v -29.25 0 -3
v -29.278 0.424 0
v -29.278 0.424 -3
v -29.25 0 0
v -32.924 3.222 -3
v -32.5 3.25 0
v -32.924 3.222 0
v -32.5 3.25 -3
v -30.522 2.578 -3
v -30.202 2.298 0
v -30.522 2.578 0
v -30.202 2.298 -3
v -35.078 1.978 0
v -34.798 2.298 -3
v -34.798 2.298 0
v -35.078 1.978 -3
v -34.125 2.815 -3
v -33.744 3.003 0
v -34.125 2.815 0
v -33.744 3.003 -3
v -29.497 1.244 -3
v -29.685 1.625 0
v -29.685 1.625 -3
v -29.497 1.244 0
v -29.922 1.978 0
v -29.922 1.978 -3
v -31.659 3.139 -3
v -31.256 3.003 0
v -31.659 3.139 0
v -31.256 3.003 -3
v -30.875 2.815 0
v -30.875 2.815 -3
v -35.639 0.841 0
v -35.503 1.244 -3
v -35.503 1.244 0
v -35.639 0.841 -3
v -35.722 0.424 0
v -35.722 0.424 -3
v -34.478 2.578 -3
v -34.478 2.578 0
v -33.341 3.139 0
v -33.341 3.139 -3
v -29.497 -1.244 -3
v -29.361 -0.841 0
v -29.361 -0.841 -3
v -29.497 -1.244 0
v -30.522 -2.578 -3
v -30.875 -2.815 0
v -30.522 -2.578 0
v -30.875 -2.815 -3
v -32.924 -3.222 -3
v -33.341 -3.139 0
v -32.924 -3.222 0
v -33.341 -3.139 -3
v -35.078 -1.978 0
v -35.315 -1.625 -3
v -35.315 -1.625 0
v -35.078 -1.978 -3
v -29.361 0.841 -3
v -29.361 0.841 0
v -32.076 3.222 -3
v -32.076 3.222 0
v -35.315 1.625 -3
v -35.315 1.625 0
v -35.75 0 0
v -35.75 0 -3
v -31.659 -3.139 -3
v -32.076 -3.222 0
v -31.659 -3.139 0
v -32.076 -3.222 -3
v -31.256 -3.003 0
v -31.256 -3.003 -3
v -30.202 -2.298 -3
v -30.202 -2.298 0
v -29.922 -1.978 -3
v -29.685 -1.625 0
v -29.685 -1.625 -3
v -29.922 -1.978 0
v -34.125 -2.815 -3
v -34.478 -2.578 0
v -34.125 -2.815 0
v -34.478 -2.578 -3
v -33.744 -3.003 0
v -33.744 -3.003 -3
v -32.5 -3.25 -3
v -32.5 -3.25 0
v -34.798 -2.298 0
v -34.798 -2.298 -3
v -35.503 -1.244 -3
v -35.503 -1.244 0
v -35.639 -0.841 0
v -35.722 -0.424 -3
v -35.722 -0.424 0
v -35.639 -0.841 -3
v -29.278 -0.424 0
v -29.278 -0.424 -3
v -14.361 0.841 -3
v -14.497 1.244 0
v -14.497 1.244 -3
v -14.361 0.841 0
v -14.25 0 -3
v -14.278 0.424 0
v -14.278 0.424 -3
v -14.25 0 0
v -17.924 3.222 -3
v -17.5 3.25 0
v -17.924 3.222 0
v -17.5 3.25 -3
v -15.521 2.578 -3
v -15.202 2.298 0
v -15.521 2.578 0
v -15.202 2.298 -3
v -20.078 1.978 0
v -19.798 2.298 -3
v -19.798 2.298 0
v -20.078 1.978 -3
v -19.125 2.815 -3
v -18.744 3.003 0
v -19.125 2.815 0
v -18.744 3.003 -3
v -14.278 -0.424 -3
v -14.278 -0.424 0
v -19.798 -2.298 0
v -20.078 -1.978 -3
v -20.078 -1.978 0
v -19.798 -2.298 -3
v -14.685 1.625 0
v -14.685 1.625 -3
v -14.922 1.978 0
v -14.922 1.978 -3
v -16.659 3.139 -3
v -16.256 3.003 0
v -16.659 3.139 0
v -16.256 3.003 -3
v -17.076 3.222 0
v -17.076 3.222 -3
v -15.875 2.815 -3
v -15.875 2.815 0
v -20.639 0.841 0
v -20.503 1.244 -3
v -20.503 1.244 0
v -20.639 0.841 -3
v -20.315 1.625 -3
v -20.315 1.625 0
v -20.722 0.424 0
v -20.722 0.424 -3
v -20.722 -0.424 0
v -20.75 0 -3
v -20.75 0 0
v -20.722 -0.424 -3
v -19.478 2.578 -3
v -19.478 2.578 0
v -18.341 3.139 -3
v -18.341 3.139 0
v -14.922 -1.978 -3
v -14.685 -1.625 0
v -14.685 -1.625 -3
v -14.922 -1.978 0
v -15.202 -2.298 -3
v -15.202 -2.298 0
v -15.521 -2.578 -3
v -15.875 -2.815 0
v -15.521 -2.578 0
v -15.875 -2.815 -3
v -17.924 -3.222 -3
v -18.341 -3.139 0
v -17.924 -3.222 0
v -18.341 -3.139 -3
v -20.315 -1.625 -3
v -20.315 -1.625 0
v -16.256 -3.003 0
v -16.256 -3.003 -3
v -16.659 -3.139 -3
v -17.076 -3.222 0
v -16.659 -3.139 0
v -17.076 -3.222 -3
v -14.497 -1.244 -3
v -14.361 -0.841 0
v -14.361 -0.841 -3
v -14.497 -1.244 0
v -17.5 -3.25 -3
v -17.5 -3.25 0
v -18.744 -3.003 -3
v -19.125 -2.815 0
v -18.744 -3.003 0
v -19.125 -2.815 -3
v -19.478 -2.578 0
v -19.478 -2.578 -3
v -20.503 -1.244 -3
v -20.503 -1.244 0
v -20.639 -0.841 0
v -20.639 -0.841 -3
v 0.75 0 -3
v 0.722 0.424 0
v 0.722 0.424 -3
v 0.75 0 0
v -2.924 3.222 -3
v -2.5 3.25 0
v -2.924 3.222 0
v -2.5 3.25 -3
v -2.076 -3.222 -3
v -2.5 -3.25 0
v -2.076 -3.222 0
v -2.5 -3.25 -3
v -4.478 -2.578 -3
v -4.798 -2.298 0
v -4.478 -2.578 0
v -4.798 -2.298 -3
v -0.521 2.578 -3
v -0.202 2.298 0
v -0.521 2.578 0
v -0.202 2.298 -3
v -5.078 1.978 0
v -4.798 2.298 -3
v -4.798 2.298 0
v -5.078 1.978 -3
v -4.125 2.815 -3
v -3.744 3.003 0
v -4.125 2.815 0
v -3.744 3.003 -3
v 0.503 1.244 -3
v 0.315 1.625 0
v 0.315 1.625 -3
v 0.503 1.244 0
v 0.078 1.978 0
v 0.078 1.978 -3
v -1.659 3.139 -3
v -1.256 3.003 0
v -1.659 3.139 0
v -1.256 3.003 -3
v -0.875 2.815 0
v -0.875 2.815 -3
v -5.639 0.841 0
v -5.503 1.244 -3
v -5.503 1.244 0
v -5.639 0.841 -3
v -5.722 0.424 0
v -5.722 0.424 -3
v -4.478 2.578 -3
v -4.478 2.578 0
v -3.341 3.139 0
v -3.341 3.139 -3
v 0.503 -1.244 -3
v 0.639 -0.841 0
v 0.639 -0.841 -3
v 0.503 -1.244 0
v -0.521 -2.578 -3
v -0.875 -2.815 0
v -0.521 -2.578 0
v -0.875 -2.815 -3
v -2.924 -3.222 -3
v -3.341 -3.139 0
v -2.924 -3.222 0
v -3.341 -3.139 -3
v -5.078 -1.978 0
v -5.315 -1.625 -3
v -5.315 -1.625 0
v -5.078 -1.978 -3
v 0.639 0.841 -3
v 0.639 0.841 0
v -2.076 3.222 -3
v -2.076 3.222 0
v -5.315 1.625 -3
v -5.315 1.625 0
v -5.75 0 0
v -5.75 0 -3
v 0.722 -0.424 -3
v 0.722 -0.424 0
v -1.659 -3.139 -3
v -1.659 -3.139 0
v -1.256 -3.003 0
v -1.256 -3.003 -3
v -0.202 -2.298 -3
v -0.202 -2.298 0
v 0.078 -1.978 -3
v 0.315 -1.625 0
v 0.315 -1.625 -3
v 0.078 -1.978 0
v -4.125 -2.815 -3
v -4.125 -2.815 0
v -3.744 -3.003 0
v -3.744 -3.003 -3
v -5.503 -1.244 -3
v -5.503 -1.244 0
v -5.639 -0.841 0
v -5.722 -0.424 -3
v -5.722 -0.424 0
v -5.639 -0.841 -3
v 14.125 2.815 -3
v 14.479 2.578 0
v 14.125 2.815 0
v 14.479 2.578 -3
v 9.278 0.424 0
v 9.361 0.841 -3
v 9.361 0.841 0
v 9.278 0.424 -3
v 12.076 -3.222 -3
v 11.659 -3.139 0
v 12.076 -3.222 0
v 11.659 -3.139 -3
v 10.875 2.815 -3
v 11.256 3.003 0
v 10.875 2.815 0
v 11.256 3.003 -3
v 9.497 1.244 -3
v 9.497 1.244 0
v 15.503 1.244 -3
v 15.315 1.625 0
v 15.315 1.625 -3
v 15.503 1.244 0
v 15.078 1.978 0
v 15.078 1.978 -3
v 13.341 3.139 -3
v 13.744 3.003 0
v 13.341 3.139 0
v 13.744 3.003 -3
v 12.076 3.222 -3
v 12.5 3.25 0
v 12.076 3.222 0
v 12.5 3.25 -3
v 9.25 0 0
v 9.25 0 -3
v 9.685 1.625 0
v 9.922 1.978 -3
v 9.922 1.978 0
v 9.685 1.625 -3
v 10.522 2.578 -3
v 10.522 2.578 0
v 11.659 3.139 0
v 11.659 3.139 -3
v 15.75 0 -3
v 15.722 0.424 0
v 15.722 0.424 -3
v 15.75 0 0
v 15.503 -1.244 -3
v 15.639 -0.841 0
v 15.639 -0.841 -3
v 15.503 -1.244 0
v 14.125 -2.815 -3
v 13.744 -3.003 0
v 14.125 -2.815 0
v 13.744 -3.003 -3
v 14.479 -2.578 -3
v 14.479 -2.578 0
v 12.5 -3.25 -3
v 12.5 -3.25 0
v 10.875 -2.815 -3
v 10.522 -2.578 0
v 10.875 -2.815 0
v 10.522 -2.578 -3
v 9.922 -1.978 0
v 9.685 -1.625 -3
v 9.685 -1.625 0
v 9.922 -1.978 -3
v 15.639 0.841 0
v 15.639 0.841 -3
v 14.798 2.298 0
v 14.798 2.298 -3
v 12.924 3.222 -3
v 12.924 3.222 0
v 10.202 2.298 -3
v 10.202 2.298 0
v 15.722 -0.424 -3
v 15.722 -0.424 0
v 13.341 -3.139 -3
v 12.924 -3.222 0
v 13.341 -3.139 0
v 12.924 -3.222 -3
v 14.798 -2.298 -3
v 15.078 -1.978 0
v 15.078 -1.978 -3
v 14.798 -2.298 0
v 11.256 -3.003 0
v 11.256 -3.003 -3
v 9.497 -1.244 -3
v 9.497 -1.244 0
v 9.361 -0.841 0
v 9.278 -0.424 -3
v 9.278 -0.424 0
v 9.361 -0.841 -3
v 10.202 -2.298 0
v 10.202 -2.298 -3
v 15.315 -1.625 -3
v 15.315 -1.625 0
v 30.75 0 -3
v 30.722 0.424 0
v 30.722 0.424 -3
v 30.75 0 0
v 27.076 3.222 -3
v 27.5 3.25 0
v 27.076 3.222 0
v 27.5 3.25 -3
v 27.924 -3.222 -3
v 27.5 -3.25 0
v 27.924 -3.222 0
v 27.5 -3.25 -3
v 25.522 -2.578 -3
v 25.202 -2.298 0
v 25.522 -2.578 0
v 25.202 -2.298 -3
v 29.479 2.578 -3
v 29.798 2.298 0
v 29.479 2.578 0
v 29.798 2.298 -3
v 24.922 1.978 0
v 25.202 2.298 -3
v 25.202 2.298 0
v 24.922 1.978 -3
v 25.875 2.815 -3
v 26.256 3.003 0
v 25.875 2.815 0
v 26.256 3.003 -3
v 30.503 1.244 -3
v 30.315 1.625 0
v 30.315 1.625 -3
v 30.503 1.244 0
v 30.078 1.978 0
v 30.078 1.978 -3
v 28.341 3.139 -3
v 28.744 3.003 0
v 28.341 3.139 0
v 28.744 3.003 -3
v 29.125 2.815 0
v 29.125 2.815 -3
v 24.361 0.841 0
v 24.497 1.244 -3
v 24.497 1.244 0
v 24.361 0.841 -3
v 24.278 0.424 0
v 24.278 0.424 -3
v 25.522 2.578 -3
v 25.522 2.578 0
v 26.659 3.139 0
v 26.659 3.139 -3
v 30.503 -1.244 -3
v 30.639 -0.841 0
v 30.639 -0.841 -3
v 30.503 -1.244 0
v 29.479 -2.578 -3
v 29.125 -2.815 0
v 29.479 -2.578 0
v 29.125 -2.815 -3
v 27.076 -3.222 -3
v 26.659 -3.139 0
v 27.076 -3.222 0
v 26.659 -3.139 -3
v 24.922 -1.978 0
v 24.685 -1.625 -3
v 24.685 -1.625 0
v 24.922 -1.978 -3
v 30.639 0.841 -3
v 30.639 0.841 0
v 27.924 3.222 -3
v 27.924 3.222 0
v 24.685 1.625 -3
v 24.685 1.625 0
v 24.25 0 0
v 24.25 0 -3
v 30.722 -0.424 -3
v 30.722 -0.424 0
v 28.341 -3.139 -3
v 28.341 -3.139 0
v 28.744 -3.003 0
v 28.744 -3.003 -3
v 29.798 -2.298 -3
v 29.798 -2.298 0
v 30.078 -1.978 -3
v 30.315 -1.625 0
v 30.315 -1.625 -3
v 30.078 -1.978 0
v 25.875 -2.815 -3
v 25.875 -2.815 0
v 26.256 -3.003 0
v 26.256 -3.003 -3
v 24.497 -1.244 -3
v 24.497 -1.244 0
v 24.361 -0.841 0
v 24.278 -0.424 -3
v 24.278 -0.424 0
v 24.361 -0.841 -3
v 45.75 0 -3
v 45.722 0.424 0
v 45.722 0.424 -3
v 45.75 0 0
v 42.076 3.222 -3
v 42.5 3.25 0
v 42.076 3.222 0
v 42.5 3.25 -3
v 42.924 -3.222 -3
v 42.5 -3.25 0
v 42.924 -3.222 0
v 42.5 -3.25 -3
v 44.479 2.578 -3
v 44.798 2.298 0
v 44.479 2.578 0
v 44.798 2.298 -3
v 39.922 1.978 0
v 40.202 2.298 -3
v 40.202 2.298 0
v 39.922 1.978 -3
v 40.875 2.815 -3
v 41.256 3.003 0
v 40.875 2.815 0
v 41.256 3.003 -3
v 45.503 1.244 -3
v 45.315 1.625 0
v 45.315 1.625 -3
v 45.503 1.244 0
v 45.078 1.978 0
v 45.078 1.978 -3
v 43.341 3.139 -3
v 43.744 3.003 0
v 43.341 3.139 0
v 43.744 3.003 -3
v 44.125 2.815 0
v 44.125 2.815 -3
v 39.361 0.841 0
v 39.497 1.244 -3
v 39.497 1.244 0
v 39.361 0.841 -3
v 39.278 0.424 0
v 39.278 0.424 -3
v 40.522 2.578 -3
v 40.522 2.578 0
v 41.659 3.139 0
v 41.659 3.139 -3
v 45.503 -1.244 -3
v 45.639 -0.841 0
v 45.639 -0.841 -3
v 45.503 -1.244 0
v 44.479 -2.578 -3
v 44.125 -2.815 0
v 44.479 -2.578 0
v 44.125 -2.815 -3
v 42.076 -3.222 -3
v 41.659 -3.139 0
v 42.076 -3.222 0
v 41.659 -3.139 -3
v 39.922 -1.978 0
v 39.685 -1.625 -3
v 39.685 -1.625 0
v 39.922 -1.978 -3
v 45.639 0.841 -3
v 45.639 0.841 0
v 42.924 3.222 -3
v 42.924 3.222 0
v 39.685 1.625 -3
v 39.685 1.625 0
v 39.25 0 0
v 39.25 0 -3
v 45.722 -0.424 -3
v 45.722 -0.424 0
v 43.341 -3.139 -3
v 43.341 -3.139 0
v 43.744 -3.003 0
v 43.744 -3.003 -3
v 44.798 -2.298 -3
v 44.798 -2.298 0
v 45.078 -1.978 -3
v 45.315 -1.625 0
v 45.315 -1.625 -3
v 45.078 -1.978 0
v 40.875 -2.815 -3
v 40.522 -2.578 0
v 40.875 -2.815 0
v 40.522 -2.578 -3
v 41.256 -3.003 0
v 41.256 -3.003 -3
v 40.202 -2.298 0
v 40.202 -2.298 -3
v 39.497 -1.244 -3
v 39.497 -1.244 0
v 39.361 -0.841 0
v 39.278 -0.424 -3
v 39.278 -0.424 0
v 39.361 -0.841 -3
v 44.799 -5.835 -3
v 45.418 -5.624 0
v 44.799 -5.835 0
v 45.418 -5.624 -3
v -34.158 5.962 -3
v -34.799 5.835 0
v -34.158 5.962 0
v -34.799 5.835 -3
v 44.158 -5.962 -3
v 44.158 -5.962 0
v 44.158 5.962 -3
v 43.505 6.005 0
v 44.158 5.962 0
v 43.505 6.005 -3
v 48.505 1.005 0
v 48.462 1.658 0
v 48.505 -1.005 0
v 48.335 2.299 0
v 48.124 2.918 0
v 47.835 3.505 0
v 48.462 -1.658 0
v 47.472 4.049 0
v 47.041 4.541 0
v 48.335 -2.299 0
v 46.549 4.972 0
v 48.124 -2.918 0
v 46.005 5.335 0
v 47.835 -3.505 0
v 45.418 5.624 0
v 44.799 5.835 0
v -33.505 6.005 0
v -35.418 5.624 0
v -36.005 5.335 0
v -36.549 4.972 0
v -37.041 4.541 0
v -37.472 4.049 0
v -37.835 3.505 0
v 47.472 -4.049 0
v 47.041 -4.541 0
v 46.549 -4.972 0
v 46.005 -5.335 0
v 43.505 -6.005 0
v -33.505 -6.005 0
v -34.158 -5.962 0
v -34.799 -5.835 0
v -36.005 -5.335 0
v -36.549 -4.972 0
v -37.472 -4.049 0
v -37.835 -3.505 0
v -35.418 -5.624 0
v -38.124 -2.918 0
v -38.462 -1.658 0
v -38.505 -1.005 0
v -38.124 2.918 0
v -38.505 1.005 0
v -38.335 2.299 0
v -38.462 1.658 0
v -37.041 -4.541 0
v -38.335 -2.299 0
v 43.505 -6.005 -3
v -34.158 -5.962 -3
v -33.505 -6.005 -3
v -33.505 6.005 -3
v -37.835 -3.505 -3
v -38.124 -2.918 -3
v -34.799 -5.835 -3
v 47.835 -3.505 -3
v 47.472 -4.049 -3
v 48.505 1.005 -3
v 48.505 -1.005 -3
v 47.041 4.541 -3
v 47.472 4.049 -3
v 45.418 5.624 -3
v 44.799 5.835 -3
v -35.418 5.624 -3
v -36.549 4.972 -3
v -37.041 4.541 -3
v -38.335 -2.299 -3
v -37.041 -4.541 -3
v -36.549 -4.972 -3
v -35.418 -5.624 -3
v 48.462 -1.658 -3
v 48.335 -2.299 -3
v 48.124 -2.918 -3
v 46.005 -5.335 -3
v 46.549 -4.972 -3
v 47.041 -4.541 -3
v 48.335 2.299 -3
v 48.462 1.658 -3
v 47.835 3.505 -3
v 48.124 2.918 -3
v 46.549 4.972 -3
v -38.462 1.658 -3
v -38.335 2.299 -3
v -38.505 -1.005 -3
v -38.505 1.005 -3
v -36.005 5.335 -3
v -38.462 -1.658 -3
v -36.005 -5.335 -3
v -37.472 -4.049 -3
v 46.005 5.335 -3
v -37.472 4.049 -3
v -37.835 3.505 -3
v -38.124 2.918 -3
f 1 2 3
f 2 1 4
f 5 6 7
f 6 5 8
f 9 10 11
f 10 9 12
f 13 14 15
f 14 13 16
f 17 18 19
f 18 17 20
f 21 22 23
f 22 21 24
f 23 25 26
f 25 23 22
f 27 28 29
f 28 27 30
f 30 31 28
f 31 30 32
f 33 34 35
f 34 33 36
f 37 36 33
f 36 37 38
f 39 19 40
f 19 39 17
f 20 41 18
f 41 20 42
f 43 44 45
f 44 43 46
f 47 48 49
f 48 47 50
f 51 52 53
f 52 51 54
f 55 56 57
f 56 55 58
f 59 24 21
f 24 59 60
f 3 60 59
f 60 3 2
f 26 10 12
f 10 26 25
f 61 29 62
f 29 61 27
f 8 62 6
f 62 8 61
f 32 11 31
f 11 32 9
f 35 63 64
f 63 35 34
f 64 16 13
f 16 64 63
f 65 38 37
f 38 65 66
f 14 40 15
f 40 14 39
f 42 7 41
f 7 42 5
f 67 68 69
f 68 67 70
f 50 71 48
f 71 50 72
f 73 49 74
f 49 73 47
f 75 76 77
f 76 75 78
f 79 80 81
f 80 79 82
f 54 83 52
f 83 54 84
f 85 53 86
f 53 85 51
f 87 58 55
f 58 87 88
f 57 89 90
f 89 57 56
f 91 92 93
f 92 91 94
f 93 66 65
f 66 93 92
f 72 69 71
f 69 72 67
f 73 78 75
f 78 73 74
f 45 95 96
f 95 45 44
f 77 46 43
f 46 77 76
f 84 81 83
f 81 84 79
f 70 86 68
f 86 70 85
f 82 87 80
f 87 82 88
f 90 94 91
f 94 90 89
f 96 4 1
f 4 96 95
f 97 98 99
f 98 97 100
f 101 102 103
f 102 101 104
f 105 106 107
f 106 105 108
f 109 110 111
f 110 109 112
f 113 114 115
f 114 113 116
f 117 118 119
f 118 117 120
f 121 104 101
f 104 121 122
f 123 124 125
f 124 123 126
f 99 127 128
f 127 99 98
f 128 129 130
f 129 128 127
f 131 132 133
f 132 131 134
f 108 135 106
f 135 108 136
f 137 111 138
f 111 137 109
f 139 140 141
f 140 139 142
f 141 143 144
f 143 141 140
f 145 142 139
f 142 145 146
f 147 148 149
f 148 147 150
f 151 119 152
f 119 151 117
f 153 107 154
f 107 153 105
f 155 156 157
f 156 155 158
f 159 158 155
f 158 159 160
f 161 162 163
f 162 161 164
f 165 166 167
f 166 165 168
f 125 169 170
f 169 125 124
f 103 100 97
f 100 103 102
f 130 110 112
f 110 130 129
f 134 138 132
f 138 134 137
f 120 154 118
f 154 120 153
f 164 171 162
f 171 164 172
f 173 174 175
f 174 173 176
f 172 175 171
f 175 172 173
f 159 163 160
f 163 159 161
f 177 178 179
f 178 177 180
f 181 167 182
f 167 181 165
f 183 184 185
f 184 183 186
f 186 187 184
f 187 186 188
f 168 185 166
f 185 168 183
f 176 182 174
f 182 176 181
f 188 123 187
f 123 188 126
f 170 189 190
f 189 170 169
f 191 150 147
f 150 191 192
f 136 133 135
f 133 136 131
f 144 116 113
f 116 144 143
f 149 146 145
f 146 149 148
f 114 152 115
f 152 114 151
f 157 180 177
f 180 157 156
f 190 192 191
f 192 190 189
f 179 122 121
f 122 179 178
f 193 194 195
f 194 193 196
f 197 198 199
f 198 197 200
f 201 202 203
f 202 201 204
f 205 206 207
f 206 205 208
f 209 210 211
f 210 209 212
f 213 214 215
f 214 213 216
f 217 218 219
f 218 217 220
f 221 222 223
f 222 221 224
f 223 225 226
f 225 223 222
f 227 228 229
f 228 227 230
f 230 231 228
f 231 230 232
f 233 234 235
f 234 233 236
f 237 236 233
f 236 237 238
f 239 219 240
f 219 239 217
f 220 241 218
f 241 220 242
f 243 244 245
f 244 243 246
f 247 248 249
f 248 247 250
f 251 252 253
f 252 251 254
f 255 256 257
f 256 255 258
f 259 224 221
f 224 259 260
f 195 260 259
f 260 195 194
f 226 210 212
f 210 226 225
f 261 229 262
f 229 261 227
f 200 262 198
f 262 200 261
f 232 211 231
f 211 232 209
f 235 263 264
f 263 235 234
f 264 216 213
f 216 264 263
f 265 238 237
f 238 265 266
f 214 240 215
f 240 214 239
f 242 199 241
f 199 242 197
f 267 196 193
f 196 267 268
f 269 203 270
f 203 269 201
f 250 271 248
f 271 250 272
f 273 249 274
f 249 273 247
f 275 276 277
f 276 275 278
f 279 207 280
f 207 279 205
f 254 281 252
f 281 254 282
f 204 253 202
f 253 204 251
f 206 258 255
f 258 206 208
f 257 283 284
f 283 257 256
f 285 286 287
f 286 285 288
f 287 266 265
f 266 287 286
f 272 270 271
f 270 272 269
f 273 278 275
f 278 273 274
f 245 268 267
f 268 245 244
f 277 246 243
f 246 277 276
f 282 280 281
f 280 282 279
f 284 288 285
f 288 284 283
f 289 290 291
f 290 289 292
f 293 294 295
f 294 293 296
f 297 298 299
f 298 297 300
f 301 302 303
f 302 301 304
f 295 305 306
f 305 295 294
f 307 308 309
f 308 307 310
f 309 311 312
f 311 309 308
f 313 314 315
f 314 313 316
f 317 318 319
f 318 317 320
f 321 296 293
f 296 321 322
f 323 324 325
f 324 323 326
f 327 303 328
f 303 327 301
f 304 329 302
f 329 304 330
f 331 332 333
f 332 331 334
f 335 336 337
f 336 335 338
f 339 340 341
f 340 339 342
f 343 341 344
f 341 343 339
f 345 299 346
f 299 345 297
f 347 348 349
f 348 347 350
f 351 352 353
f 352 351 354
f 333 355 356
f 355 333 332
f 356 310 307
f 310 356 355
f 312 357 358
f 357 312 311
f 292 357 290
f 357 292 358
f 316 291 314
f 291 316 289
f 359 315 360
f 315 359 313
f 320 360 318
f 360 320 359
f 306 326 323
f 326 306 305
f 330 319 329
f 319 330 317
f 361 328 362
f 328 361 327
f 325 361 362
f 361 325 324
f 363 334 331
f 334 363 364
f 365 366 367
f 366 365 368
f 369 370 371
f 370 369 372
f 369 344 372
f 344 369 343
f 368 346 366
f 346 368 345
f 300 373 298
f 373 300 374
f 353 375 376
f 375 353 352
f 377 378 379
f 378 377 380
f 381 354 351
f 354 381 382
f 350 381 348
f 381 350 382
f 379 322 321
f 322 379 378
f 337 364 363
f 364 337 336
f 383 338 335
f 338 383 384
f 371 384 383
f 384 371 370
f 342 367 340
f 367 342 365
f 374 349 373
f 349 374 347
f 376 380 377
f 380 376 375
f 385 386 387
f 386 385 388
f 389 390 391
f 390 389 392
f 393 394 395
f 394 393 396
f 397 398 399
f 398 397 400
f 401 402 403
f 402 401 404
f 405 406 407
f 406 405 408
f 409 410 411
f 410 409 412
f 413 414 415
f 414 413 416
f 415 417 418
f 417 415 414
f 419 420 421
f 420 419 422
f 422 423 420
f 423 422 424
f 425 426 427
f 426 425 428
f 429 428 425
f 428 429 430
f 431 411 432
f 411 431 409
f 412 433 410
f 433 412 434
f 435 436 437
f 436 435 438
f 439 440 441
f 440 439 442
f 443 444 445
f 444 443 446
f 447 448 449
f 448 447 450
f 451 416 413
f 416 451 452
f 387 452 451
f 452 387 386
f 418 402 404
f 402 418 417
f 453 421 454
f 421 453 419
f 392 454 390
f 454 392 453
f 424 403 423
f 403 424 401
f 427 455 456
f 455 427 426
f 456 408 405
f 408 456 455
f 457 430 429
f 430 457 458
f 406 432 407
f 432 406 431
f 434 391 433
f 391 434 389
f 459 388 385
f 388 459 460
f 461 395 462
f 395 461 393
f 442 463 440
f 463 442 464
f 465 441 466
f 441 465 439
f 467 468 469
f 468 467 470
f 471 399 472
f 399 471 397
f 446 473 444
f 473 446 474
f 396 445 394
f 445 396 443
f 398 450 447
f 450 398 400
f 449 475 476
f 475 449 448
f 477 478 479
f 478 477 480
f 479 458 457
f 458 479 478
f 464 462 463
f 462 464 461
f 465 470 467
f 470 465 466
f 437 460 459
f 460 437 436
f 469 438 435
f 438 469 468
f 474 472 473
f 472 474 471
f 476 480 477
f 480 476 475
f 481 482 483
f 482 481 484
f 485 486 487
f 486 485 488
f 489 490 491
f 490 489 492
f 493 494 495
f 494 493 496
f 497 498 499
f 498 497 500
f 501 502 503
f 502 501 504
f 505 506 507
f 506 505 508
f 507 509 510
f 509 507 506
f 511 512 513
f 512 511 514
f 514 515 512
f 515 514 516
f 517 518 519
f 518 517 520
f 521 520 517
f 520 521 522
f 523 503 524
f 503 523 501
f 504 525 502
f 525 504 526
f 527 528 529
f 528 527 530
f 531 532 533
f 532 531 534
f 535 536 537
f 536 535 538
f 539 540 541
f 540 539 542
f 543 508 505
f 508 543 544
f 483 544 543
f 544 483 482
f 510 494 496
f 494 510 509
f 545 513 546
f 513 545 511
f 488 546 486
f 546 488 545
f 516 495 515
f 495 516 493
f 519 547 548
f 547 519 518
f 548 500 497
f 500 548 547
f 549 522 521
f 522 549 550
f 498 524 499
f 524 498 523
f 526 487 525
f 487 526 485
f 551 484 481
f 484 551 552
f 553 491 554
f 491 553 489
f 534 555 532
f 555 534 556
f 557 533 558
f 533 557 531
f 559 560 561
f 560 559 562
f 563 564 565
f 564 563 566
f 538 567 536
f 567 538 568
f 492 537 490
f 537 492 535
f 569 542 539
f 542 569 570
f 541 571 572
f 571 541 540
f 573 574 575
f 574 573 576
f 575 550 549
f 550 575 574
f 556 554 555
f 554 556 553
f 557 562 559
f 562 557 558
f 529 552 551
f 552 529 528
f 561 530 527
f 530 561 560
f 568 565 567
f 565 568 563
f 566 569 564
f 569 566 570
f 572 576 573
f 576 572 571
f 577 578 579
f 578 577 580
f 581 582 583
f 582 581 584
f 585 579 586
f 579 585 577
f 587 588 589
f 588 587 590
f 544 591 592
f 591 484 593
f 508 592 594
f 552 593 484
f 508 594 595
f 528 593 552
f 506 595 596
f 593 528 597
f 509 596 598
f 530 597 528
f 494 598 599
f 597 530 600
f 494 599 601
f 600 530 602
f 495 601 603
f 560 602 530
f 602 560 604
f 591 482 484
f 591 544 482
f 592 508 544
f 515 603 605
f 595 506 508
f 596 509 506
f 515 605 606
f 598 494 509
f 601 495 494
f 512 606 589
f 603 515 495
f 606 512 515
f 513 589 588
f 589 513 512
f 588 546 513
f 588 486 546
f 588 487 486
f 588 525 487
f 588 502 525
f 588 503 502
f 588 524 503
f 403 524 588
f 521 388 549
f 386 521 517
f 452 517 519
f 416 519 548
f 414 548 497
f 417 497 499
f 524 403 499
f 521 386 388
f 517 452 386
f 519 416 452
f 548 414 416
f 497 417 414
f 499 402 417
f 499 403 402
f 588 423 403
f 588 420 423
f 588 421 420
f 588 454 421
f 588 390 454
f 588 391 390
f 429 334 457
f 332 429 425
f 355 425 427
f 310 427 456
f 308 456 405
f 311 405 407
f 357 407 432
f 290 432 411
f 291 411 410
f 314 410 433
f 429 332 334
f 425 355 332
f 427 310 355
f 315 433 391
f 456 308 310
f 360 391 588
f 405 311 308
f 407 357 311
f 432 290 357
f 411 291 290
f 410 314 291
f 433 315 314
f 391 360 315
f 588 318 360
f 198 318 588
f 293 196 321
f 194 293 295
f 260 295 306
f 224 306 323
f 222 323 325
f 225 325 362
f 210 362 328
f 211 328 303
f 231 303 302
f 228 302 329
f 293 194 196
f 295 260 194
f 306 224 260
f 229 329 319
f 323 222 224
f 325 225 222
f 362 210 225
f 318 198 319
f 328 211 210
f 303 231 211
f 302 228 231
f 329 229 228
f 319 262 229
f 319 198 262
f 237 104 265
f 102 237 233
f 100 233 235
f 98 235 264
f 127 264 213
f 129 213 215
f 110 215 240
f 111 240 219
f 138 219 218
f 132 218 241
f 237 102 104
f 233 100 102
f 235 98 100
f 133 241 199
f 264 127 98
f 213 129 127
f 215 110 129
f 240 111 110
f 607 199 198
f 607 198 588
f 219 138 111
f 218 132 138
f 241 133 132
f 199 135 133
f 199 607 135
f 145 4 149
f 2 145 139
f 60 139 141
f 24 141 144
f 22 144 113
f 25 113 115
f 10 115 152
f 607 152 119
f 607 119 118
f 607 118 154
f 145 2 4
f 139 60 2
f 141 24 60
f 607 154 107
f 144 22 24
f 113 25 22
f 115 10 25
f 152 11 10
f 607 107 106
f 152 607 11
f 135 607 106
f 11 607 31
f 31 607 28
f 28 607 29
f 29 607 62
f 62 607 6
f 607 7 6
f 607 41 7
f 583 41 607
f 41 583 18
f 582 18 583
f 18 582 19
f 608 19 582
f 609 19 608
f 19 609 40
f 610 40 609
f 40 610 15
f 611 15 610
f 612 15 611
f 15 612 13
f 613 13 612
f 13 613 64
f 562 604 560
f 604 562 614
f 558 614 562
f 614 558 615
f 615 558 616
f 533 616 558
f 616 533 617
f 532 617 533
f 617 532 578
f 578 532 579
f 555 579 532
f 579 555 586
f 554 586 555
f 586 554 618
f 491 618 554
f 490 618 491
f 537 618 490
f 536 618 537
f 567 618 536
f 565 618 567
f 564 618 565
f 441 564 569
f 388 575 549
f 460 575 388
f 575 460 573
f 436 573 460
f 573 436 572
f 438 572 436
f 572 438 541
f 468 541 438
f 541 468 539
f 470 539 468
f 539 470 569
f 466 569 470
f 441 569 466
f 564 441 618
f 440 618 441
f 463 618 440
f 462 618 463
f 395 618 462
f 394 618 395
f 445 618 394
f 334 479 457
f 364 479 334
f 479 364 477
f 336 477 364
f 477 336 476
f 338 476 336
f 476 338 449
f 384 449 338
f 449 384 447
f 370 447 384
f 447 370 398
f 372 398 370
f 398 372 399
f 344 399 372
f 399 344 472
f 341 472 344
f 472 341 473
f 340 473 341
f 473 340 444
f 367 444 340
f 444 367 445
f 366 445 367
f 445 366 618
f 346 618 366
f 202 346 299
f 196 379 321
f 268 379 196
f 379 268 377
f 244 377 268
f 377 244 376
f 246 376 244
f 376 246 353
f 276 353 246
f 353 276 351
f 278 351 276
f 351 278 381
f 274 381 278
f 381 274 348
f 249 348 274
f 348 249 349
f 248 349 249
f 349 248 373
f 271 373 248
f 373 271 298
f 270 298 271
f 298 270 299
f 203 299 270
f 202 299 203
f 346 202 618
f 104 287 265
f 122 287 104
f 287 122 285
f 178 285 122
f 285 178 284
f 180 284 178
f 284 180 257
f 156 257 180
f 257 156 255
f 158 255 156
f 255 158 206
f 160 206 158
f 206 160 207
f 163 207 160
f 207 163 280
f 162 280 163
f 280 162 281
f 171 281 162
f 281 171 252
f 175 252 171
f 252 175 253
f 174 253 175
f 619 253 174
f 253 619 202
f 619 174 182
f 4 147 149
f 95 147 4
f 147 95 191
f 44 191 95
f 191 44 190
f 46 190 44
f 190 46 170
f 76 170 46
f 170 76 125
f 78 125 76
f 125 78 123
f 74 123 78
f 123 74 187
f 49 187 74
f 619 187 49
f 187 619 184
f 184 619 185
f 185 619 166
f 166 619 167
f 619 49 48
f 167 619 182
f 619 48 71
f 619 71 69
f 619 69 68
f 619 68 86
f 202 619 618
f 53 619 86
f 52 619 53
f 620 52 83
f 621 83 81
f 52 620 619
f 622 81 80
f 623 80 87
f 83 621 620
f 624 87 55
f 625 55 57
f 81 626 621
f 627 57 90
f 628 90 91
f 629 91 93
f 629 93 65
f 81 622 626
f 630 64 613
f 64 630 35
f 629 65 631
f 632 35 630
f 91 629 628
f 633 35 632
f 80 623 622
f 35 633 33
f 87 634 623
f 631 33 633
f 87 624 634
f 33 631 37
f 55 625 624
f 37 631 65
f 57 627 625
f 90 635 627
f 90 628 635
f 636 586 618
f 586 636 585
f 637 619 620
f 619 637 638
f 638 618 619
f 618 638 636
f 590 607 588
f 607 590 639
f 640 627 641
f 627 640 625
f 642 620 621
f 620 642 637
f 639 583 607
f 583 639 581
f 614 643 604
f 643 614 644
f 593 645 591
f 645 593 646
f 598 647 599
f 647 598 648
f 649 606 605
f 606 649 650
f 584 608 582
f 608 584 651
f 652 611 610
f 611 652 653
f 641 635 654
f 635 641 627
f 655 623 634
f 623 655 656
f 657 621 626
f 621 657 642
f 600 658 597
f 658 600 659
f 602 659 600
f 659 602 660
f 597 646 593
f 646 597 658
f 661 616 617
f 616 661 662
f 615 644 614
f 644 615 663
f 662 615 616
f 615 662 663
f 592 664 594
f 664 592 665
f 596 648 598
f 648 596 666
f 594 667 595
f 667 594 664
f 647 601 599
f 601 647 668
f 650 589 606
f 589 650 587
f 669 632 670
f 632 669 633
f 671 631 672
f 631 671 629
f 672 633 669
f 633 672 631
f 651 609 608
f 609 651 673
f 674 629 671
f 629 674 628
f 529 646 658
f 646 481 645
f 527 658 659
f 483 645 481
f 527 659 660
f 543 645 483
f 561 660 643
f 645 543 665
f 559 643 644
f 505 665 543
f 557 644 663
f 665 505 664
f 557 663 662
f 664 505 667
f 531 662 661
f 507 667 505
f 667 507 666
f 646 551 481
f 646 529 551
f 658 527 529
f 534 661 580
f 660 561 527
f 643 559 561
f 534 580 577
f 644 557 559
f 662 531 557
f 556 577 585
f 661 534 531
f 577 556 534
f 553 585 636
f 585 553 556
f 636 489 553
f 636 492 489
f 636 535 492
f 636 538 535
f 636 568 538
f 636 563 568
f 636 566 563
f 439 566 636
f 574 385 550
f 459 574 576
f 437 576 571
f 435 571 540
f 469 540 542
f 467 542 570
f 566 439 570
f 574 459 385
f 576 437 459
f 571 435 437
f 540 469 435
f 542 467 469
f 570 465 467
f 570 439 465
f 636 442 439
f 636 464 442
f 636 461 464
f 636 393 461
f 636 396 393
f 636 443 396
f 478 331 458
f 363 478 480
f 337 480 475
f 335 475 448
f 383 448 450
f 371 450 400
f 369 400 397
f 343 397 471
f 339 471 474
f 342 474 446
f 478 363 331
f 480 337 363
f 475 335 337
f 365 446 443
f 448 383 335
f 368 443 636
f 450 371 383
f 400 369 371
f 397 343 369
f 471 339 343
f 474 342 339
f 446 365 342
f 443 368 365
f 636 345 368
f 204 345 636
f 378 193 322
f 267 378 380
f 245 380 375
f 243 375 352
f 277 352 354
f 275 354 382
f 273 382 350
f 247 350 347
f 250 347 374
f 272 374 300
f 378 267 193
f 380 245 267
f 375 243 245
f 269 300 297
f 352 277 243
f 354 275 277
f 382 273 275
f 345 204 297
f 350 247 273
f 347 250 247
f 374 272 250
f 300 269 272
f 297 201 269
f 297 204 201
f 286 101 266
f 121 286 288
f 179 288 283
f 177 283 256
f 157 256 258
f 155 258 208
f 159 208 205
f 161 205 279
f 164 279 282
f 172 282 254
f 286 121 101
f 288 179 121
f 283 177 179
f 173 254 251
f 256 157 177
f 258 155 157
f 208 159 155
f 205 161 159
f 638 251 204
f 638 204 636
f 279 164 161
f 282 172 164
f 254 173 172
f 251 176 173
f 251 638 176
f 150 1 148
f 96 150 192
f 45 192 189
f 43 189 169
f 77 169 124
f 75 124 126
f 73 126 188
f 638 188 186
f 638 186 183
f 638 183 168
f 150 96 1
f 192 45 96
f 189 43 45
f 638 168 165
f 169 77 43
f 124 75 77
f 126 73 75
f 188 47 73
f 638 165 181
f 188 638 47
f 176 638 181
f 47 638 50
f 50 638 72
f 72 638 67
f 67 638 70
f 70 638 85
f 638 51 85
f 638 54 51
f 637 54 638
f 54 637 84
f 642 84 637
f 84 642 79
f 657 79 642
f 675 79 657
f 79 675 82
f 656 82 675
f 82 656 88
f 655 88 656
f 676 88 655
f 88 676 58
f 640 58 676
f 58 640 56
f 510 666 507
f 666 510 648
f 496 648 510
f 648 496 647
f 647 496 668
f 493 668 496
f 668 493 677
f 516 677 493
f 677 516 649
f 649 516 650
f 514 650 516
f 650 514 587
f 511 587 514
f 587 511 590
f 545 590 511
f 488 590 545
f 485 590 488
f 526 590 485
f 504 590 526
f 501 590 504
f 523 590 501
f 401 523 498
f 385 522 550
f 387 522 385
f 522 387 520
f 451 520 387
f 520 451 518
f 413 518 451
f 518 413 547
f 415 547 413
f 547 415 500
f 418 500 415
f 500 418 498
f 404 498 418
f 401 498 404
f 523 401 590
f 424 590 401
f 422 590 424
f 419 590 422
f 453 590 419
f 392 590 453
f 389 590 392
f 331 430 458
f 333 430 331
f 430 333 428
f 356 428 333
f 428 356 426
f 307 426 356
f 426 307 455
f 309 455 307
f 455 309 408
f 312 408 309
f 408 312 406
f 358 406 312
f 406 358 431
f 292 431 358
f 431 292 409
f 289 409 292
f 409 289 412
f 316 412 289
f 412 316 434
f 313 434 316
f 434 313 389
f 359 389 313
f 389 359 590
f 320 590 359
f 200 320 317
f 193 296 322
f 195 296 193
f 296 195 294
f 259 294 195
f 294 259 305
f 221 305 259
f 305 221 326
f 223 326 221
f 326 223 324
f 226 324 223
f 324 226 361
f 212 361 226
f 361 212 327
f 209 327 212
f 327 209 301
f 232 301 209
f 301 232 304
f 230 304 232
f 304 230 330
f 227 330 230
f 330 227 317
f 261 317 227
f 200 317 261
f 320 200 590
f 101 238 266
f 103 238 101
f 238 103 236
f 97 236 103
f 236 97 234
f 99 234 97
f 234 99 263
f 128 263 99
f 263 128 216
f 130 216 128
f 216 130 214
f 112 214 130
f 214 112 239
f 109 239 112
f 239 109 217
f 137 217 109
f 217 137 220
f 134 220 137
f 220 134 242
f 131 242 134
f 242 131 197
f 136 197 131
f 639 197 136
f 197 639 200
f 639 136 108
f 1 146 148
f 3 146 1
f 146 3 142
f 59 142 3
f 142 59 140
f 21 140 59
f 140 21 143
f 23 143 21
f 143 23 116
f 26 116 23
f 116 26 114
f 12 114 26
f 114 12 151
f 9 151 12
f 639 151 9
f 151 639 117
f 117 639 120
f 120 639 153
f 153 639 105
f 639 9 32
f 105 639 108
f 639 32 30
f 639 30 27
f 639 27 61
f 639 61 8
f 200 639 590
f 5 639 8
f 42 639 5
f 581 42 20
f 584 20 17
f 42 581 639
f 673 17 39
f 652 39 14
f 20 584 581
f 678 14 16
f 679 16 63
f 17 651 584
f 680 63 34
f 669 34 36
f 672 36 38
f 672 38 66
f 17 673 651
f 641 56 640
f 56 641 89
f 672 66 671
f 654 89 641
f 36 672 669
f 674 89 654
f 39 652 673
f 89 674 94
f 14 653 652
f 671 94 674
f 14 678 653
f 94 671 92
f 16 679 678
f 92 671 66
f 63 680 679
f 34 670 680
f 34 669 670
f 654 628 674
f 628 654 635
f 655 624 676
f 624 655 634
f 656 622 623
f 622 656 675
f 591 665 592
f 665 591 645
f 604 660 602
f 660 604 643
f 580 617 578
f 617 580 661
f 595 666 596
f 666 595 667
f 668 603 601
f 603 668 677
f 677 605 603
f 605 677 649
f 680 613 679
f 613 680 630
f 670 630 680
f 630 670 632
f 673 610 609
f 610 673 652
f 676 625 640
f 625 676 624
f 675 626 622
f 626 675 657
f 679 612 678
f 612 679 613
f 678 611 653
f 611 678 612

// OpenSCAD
// Generated by SolidPython 1.1.3 on 2022-09-15 16:37:10
$fn = 48;


difference() {
	union() {
		translate(v = [5, 0, 0]) {
			difference() {
				union() {
					color(alpha = 1.0000000000, c = "Gold") {
						translate(v = [0, 0, 0]) {
							rotate(a = [0, 0, 0]) {
								translate(v = [0, 0, -3]) {
									linear_extrude(height = 3) {
										offset(r = 5) {
											square(center = true, size = [77.0100000000, 2.0100000000]);
										}
									}
								}
							}
						}
					}
				}
				union() {
					color(alpha = 1.0000000000, c = "Gold") {
						translate(v = [-37.5000000000, 0.0000000000, 0]) {
							rotate(a = [0, 0, 0]) {
								translate(v = [0, 0, -250]) {
									cylinder(h = 500, r = 3.2500000000);
								}
							}
						}
					}
					color(alpha = 1.0000000000, c = "Gold") {
						translate(v = [-22.5000000000, 0.0000000000, 0]) {
							rotate(a = [0, 0, 0]) {
								translate(v = [0, 0, -250]) {
									cylinder(h = 500, r = 3.2500000000);
								}
							}
						}
					}
					color(alpha = 1.0000000000, c = "Gold") {
						translate(v = [-7.5000000000, 0.0000000000, 0]) {
							rotate(a = [0, 0, 0]) {
								translate(v = [0, 0, -250]) {
									cylinder(h = 500, r = 3.2500000000);
								}
							}
						}
					}
					color(alpha = 1.0000000000, c = "Gold") {
						translate(v = [7.5000000000, 0.0000000000, 0]) {
							rotate(a = [0, 0, 0]) {
								translate(v = [0, 0, -250]) {
									cylinder(h = 500, r = 3.2500000000);
								}
							}
						}
					}
					color(alpha = 1.0000000000, c = "Gold") {
						translate(v = [22.5000000000, 0.0000000000, 0]) {
							rotate(a = [0, 0, 0]) {
								translate(v = [0, 0, -250]) {
									cylinder(h = 500, r = 3.2500000000);
								}
							}
						}
					}
					color(alpha = 1.0000000000, c = "Gold") {
						translate(v = [37.5000000000, 0.0000000000, 0]) {
							rotate(a = [0, 0, 0]) {
								translate(v = [0, 0, -250]) {
									cylinder(h = 500, r = 3.2500000000);
								}
							}
						}
					}
				}
			}
		}
	}
	union();
}
/***********************************************
*********      SolidPython code:      **********
************************************************
 
import subprocess

from solid.objects import *
from solid import scad_render_to_file, scad_render

import math

import os

##################################################################################################################################################
##################################################################################################################################################
##################################################################################################################################################
##################################################################################################################################################
######  DIMENSION STUFF
##################################################################################################################################################
##################################################################################################################################################
##################################################################################################################################################
##################################################################################################################################################


mode = "3DPR"
#mode = "LAZE"
#mode = "TURE"
#mode = ""


######  Countersunk
countersunkM = []
WIDTH = 0
DEPTH = 1
countersunkM1width = 0; countersunkM1depth = 0; countersunkM2width = 0; countersunkM2depth = 0
countersunkM3width = 0
countersunkM3depth = 0
countersunkM4width = 0
countersunkM4depth = 0
countersunkM5width = 0
countersunkM5depth = 0
countersunkM6width = 0
countersunkM6depth = 0

######  Holes
holeM = []
holeM1 = 0
holeM2 = 0
holeM3 = 0
holeM4 = 0
holeM5 = 0
holeM6 = 0

######  Nuts
nutM = []
NUTWIDTH = 0
NUTDEPTH = 1
nutM1width = 0
nutM1depth = 0
nutM2width = 0
nutM2depth = 0
nutM3width = 0
nutM3depth = 0
nutM4width = 0
nutM4depth = 0
nutM5width = 0
nutM5depth = 0
nutM6width = 0
nutM6depth = 0

######  OOEB
ooebPinWidth = 0
ooebPinWidthWide = 0


######  Colors
colDefault = "Gold"

colOOEBbase = colDefault

colLEDRed = "red"
colWire = "gray"
    ######  Resistor
colRes = list()
colResistor = "beige"

colResBlack = "black"
colRes.append(colResBlack)
colResBrown = "brown"
colRes.append(colResBrown)
colResRed = "red"
colRes.append(colResRed)
colResOrange = "orange"
colRes.append(colResOrange)
colResYellow = "yellow"
colRes.append(colResYellow)
colResGreen = "green"
colRes.append(colResGreen)
colResBlue = "blue"
colRes.append(colResBlue)
colResPurple = "purple"
colRes.append(colResPurple)
colResGray = "gray"
colRes.append(colResGray)
colResWhite = "white"
colRes.append(colResWhite)





def changeMode(m="3DPR"):
    #print("####################################################      CHANGING MODES TO: " + m)
    global mode
    mode = m
    ######  Countersunk
    global countersunkM, countersunkM1width, countersunkM1depth, countersunkM2width, countersunkM2depth, countersunkM3width, countersunkM3depth, countersunkM4width, countersunkM4depth, countersunkM5width, countersunkM5depth, countersunkM6width, countersunkM6depth
    countersunkM = []
    countersunkM.append([0,0])
    countersunkM1width = 0 if mode== "3DPR" else 0
    countersunkM1depth = 0 if mode== "3DPR" else 0
    countersunkM.append([countersunkM1width,countersunkM1depth])
    countersunkM2width = 0 if mode== "3DPR" else 0
    countersunkM2depth = 0 if mode== "3DPR" else 0
    countersunkM.append([countersunkM2width,countersunkM2depth])
    countersunkM3width = 5.5/2+0.6 if mode== "3DPR" else 5.5/2
    countersunkM3depth = 1.7 if mode== "3DPR" else 1.7
    countersunkM.append([countersunkM3width,countersunkM3depth])
    countersunkM4width = 0 if mode== "3DPR" else 0
    countersunkM4depth = 0 if mode== "3DPR" else 0
    countersunkM.append([countersunkM4width,countersunkM4depth])
    countersunkM5width = 0 if mode== "3DPR" else 0
    countersunkM5depth = 0 if mode== "3DPR" else 0
    countersunkM.append([countersunkM5width,countersunkM5depth])
    countersunkM6width = 0 if mode== "3DPR" else 0
    countersunkM6depth = 0 if mode== "3DPR" else 0
    countersunkM.append([countersunkM6width,countersunkM6depth])
    ######  Holes
    global holeM, holeM1, holeM2, holeM3, holeM4, holeM5, holeM6, holeM7, holeM8
    holeM = []
    holeM1 = 1.2/2 if mode== "3DPR" else 1/2
    holeM2 = 2.3/2 if mode== "3DPR" else 2/2
    holeM3 = 3.4/2 if mode== "3DPR" else 3/2
    holeM4 = 4.4/2 if mode== "3DPR" else 4/2
    holeM5 = 5.4/2 if mode== "3DPR" else 5/2
    holeM6 = 6.5/2 if mode== "3DPR" else 6/2
    holeM7 = 7.5/2 if mode== "3DPR" else 7/2
    holeM8 = 8.6/2 if mode== "3DPR" else 8/2
    holeM.append(0)
    holeM.append(holeM1)
    holeM.append(holeM2)
    holeM.append(holeM3)
    holeM.append(holeM4)
    holeM.append(holeM5)
    holeM.append(holeM6)
    holeM.append(holeM7)
    holeM.append(holeM8)
    #####  Nuts
    global nutM, nutM1width, nutM1depth, nutM2width, nutM2depth, nutM3width, nutM3depth, nutM4width, nutM4depth, nutM5width, nutM5depth, nutM6width, nutM6depth
    nutM = []
    nutM.append([0,0]) 
    #M1 Nut
    nutM1width = 0
    nutM1depth = 0
    nutM.append([nutM1width,nutM1depth])    
    #M2 Nut
    nutM2width = 0
    nutM2depth = 0
    nutM.append([nutM2width,nutM2depth])    
    #M3 Nut
    #nutM3width = 6.05 if mode== "3DPR" else 5.5
    nutM3width = 6.05 * 1.154 if mode== "3DPR" else 5.5 * 1.154
    nutM3depth = 2.5 if mode== "3DPR" else 2.5
    nutM.append([nutM3width,nutM3depth])    
    #M4 Nut
    nutM4width = 0
    nutM4depth = 0
    nutM.append([nutM4width,nutM4depth])    
    #M5 Nut
    nutM5width = 0
    nutM5depth = 0
    nutM.append([nutM5width,nutM5depth])    
    #M6 Nut
    nutM6width = 11 if mode== "3DPR" else 10
    nutM6depth = 5 if mode== "3DPR" else 5
    nutM.append([nutM6width,nutM6depth])    

    ######  OOEB
    global ooebPinWidth,  ooebPinWidthWide

    ooebPinWidth = 0.6
    if(mode=="3DPR" or mode=="LAZE"):
        ooebPinWidth = 0.6 + 0.6
    ooebPinWidthWide = 1.2
    if(mode=="3DPR" or mode=="LAZE"):
        ooebPinWidthWide = 1.2 + 0.6


changeMode()


""""    
holeM12D = s=="3DPR" ? 1.4/2 : 1.2/2;
holeM16D = s=="3DPR" ? 1.8/2 : 1.6/2;
holeM2 = s=="3DPR" ? 2.3/2 : 2/2;
holeM25D = s=="3DPR" ? 2.8/2 : 2.5/2;
holeM27D = s=="3DPR" ? 3.1/2 : 2.7/2;    
holeM3 = s=="3DPR" ? 3.4/2 : 3/2;
holeM35D = s=="3DPR" ? 3.9/2 : 35/2;
holeM4 = s=="3DPR" ? 4.4/2 : 4/2;
holeM5 = s=="3DPR" ? 5.4/2 : 5/2;
holeM6 = s=="3DPR" ? 6.5/2 : 6/2;
holeM6Minus = s=="3DPR" ? 5.8/2 : 5.9/2;
holeM7 = s=="3DPR" ? 7.5/2 : 7/2;
holeM8 = s=="3DPR" ? 8.6/2 : 8/2;
holeM9 = s=="3DPR" ? 9.6/2 : 9/2;
holeM10 = s=="3DPR" ? 10.6/2 : 10/2;
holeM11 = s=="3DPR" ? 11.6/2 : 11/2;
holeM12 = s=="3DPR" ? 12.6/2 : 12/2;
holeM13 = s=="3DPR" ? 13.6/2 : 13/2;
holeM14 = s=="3DPR" ? 14.6/2 : 14/2;
holeM15 = s=="3DPR" ? 15.6/2 : 15/2;
holeM16 = s=="3DPR" ? 16.6/2 : 16/2;
holeM17 = s=="3DPR" ? 17.6/2 : 17/2;
holeM18 = s=="3DPR" ? 18.6/2 : 18/2;
holeM19 = s=="3DPR" ? 19.6/2 : 19/2;
holeM20 = s=="3DPR" ? 20.6/2 : 20/2;
"""

##################################################################################################################################################
##################################################################################################################################################
##################################################################################################################################################
##################################################################################################################################################
######  REGULAR STUFF
##################################################################################################################################################
##################################################################################################################################################
##################################################################################################################################################
##################################################################################################################################################


def setMode(mode="3DPR"):
    changeMode(mode)

def getMode():
    return mode



def saveToScad(fileName, parts):
    dir =  os.path.dirname(os.path.abspath(fileName))
    Path(dir).mkdir(parents=True, exist_ok=True)
    file_out = scad_render_to_file(parts, fileName, file_header=f'$fn = 48;')


def saveToDxf(fileIn, fileOut=""):
    if fileOut == "":
        fileOut = fileIn.replace(".scad",".dxf")
    saveToFile(fileIn, fileOut)
    
def saveToPng(fileIn, fileOut="",extra="--render"):
    if fileOut == "":
        fileOut = fileIn.replace(".scad",".png")
    saveToFile(fileIn, fileOut)

def saveToStl(fileIn, fileOut=""):
    if fileOut == "":
        fileOut = fileIn.replace(".scad",".stl")
    saveToFile(fileIn, fileOut)
    
def saveToSvg(fileIn, fileOut=""):
    if fileOut == "":
        fileOut = fileIn.replace(".scad",".svg")
    saveToFile(fileIn, fileOut)

def saveToFile(fileIn, fileOut,extra=""):
    extra = extra + " --colorscheme Tomorrow"

    launchStr = 'openscad -o "' + fileOut + '"' + extra + ' "' + fileIn + '"'
    if ".png" in fileOut:
        launchStr = launchStr + " --render"
    print("            saveToFile launch string: " + launchStr)
    subprocess.run(launchStr)
    x=0



def insert(item,pos=[None,None,None],x=0,y=0,z=0,ex=0,size=[None,None,None],length=0,rot=[None,None,None],rotX=0,rotY=0,rotZ=0,width=0,height=0,depth=100,rad=0,rad2=0,color=colDefault,alpha=1,OOwidth=0,OOheight=0,holes=True,negative=True, name="",m=""):
    return OPSCInsert(item,pos,x,y,z,ex,size,length,rot,rotX,rotY,rotZ,width,height,depth,rad,rad2,color,alpha,OOwidth,OOheight,holes,negative,name,m=m)


def OPSCInsert(item,pos=[None,None,None],x=0,y=0,z=0,ex=0,size=[None,None,None],length=0,rot=[None,None,None],rotX=0,rotY=0,rotZ=0,width=0,height=0,depth=100,rad=0,rad2=0,col=colDefault,alpha=1,OOwidth=0,OOheight=0,holes=True,negative=True, name="",m=""):
    
    """
        color(color,alpha){
            translate([x,y,z]){
                    rotate([rotX,rotY,rotZ]){
    """
    returnValue = ""

    #print(pos)

    if pos[0] != None:
        x=pos[0]
        y=pos[1]
        z=pos[2]
    if rot[0] != None:
        rotX=rot[0]
        rotY=rot[1]
        rotZ=rot[2]
    
    returnValue = color(col)(translate((x,y,z))(
                            rotate((rotX,rotY,rotZ))(
                                OPSCInsertIf(item,pos,x,y,z,ex,size,length,rot,rotX,rotY,rotZ,width,height,depth,rad,rad2,col,alpha,OOwidth,OOheight,holes,negative,name,m=m)
                            )
                        ))
                
    

    return returnValue

def OPSCInsertIf(item,pos=[None,None,None],x=0,y=0,z=0,ex=0,size=[None,None,None],length=0,rot=[None,None,None],rotX=0,rotY=0,rotZ=0,width=0,height=0,depth=100,rad=0,rad2=0,color=colDefault,alpha=1,OOwidth=0,OOheight=0,holes=True,negative=True, name="",m=""):
    returnValue = cube([10,10,10])

    if size[0] != None:
        width=size[0]
        height=size[1]
        depth=size[2]

    #print("    OPSCInsert item:" + str(item) + " at:[" + str(x) + "," + str(y) + "," + str(z) + "] size: [" + str(width) + "," + str(height) + "," + str(depth) + "]")

    if(item=="cube"):
        returnValue =  translate([0,0,-depth/2])(cube([width,height,depth],center=True).set_modifier(m))
    elif(item=="cylinder"):        
        returnValue = translate([0,0,-depth/2])(cylinder(r=rad,h=depth,center=True).set_modifier(m))
    elif(item=="sphere"):        
        returnValue = translate([0,0,-rad])(sphere(r=rad).set_modifier(m))
    elif(item=="plane"):
        if depth == 100:
            returnValue = insert("cube",size=[1000,1000,0.1],color=color).set_modifier(m)            
        else:
            returnValue = insert("cube",size=[1000,1000,depth],color=color).set_modifier(m)                        
    elif(item=="cubeRounded"):
        if(rad == 0):
                            rad = 5
        returnValue =  translate([0,0,-depth])(
                        linear_extrude(height=depth)(                        
                            offset(r=rad)(
                                square((width-rad*2+.01,height-rad*2+.01),center=True).set_modifier(m)
                                )
                            )
        )
    ######  Countersunk
    elif(item == "countersunkM1" or item == "csM1" ):
        returnValue = OSPCgetCountersunk(rad=1,m=m)
    elif(item == "countersunkM2" or item == "csM2" ):
        returnValue = OSPCgetCountersunk(rad=2,m=m)
    elif(item == "countersunkM3" or item == "csM3" ):
        returnValue = OSPCgetCountersunk(rad=3,m=m)
    elif(item == "countersunkM4" or item == "csM4" ):
        returnValue = OSPCgetCountersunk(rad=4,m=m)
    elif(item == "countersunkM5" or item == "csM5" ):
        returnValue = OSPCgetCountersunk(rad=5,m=m)
    elif(item == "countersunkM6" or item == "csM6" ):
        returnValue = OSPCgetCountersunk(rad=6,m=m)
    elif(item == "countersunk" or item == "cs"):
        returnValue = OSPCgetCountersunk(rad=rad,m=m)


    ######  Holes    
    elif(item == "holeM1"):
        returnValue = OSPCgetHole(rad=1,m=m)
    elif(item == "holeM2"):
        returnValue = OSPCgetHole(rad=2,m=m)
    elif(item == "holeM3"):
        returnValue = OSPCgetHole(rad=3,m=m)
    elif(item == "holeM4"):
        returnValue = OSPCgetHole(rad=4,m=m)
    elif(item == "holeM5"):
        returnValue = OSPCgetHole(rad=5,m=m)
    elif(item == "holeM6"):
        returnValue = OSPCgetHole(rad=6,m=m)
    elif(item == "holeM7"):
        returnValue = OSPCgetHole(rad=7,m=m)
    elif(item == "holeM8"):
        returnValue = OSPCgetHole(rad=8,m=m)
    elif(item == "hole"):
        returnValue = OSPCgetHole(rad=rad,m=m)

    ######  Nuts
    elif(item == "nutM1"):
        returnValue = OSPCgetNut(rad=1,depth=depth,m=m)
    elif(item == "nutM2"):
        returnValue = OSPCgetNut(rad=2,depth=depth,m=m)
    elif(item == "nutM3"):
        returnValue = OSPCgetNut(rad=3,depth=depth,m=m)
    elif(item == "nutM4"):
        returnValue = OSPCgetNut(rad=4,depth=depth,m=m)
    elif(item == "nutM5"):
        returnValue = OSPCgetNut(rad=5,depth=depth,m=m)
    elif(item == "nutM6"):
        returnValue = OSPCgetNut(rad=6,depth=depth,m=m)
    elif(item == "nut"):
        returnValue = OSPCgetNut(rad=rad,depth=depth,m=m)
    return returnValue

                

def OSPCgetHole(rad,m=""):
    return translate([0,0,-250])(cylinder(r=holeM[rad],h=500).set_modifier(m))

def OSPCgetNut(rad,depth,m=""):
    depth = nutM[rad][NUTDEPTH] if depth==100 else depth
    returnValue = OPSChexagon(nutM[rad][NUTWIDTH],depth=depth,m=m)
    return returnValue

def OSPCgetCountersunk(rad,m=""):
    depth=countersunkM[rad][DEPTH]
    returnValue = translate([0,0,-depth])(cylinder(h=depth,r2=countersunkM[rad][WIDTH],r1=holeM[rad])).set_modifier(m)
    return returnValue

def OPSChexagon(width,depth,m=""):
    angles = []
    for a in range(0,6):
        angles.append((a*360/6)+30)
    points = []
    for angle in angles:
        x = math.cos((math.pi/180)*angle)*(width/2)
        y = math.sin((math.pi/180)*angle)*(width/2)
        points.append([x,y])

        rv = polygon(points)
        rv = linear_extrude(height=depth)(rv)
        rv = translate([0,0,-depth])(rv)
        rv = rv.set_modifier(m)

    return rv

def OPSChexagonOld(width,depth,m=""):
    cutter = item()
    wid=width*2
    cutter.addPos(insert("cube",pos=[wid/2+width/2,0,0],size=[wid,wid,depth]))
    cutter.addPos(insert("cube",pos=[-wid/2-width/2,0,0],size=[wid,wid,depth]))

    cut = cutter.getPart()
    #print(depth)
    returnValue = difference()(
        translate([0,0,-depth/2])(cube([wid,wid,depth],center=True)),
        cut,
        rotate([0,0,60])(cut),
        rotate([0,0,-60])(cut)
    ).set_modifier(m)

    return returnValue

class item:

    def __init__(self):
        self.posItems=list()
        self.negItems=list()

    def isEmpty(self):        
        testString = scad_render(self.getPart())
        #print("test String length: " + str(len(testString)))
        returnValue = False
        if len(testString) == 270:            
            returnValue = True
        return returnValue

    def addPos(self,part):
        self.posItems.append(part)
    def addNeg(self,part):
        self.negItems.append(part)

    def getPart(self):
        returnValue = difference()(
            union()(self.posItems),
            union()(self.negItems)
        )
        return returnValue

    def getLaser(self,start=0,layers=1,thickness=-3,tileDif=200):
        rv= []

        for x in range(layers):
            rv.append(translate([0,x*tileDif,0])(
                    projection()(
                        intersection()(
                            insert("plane",z=start+x*thickness),
                            self.getPart()
                        )
                    )
            )
            )
        return union()(rv)

    def getSplit(self,start=0,depth=6,tileDif=200):
        rv= []

        rv.append(translate([0,0,0])(
            intersection()(
                insert("cube",size=[100,100,depth],z=start),
                self.getPart()
            )
        )
        )

        rv.append(translate([0,0,depth])(rotate([180,0,0])(translate([0,tileDif,depth])(
            intersection()(
                insert("cube",size=[100,100,depth],z=start-depth),
                self.getPart()
            )
        )
        )
        )
        )        
        return union()(rv)


 
 
************************************************/
